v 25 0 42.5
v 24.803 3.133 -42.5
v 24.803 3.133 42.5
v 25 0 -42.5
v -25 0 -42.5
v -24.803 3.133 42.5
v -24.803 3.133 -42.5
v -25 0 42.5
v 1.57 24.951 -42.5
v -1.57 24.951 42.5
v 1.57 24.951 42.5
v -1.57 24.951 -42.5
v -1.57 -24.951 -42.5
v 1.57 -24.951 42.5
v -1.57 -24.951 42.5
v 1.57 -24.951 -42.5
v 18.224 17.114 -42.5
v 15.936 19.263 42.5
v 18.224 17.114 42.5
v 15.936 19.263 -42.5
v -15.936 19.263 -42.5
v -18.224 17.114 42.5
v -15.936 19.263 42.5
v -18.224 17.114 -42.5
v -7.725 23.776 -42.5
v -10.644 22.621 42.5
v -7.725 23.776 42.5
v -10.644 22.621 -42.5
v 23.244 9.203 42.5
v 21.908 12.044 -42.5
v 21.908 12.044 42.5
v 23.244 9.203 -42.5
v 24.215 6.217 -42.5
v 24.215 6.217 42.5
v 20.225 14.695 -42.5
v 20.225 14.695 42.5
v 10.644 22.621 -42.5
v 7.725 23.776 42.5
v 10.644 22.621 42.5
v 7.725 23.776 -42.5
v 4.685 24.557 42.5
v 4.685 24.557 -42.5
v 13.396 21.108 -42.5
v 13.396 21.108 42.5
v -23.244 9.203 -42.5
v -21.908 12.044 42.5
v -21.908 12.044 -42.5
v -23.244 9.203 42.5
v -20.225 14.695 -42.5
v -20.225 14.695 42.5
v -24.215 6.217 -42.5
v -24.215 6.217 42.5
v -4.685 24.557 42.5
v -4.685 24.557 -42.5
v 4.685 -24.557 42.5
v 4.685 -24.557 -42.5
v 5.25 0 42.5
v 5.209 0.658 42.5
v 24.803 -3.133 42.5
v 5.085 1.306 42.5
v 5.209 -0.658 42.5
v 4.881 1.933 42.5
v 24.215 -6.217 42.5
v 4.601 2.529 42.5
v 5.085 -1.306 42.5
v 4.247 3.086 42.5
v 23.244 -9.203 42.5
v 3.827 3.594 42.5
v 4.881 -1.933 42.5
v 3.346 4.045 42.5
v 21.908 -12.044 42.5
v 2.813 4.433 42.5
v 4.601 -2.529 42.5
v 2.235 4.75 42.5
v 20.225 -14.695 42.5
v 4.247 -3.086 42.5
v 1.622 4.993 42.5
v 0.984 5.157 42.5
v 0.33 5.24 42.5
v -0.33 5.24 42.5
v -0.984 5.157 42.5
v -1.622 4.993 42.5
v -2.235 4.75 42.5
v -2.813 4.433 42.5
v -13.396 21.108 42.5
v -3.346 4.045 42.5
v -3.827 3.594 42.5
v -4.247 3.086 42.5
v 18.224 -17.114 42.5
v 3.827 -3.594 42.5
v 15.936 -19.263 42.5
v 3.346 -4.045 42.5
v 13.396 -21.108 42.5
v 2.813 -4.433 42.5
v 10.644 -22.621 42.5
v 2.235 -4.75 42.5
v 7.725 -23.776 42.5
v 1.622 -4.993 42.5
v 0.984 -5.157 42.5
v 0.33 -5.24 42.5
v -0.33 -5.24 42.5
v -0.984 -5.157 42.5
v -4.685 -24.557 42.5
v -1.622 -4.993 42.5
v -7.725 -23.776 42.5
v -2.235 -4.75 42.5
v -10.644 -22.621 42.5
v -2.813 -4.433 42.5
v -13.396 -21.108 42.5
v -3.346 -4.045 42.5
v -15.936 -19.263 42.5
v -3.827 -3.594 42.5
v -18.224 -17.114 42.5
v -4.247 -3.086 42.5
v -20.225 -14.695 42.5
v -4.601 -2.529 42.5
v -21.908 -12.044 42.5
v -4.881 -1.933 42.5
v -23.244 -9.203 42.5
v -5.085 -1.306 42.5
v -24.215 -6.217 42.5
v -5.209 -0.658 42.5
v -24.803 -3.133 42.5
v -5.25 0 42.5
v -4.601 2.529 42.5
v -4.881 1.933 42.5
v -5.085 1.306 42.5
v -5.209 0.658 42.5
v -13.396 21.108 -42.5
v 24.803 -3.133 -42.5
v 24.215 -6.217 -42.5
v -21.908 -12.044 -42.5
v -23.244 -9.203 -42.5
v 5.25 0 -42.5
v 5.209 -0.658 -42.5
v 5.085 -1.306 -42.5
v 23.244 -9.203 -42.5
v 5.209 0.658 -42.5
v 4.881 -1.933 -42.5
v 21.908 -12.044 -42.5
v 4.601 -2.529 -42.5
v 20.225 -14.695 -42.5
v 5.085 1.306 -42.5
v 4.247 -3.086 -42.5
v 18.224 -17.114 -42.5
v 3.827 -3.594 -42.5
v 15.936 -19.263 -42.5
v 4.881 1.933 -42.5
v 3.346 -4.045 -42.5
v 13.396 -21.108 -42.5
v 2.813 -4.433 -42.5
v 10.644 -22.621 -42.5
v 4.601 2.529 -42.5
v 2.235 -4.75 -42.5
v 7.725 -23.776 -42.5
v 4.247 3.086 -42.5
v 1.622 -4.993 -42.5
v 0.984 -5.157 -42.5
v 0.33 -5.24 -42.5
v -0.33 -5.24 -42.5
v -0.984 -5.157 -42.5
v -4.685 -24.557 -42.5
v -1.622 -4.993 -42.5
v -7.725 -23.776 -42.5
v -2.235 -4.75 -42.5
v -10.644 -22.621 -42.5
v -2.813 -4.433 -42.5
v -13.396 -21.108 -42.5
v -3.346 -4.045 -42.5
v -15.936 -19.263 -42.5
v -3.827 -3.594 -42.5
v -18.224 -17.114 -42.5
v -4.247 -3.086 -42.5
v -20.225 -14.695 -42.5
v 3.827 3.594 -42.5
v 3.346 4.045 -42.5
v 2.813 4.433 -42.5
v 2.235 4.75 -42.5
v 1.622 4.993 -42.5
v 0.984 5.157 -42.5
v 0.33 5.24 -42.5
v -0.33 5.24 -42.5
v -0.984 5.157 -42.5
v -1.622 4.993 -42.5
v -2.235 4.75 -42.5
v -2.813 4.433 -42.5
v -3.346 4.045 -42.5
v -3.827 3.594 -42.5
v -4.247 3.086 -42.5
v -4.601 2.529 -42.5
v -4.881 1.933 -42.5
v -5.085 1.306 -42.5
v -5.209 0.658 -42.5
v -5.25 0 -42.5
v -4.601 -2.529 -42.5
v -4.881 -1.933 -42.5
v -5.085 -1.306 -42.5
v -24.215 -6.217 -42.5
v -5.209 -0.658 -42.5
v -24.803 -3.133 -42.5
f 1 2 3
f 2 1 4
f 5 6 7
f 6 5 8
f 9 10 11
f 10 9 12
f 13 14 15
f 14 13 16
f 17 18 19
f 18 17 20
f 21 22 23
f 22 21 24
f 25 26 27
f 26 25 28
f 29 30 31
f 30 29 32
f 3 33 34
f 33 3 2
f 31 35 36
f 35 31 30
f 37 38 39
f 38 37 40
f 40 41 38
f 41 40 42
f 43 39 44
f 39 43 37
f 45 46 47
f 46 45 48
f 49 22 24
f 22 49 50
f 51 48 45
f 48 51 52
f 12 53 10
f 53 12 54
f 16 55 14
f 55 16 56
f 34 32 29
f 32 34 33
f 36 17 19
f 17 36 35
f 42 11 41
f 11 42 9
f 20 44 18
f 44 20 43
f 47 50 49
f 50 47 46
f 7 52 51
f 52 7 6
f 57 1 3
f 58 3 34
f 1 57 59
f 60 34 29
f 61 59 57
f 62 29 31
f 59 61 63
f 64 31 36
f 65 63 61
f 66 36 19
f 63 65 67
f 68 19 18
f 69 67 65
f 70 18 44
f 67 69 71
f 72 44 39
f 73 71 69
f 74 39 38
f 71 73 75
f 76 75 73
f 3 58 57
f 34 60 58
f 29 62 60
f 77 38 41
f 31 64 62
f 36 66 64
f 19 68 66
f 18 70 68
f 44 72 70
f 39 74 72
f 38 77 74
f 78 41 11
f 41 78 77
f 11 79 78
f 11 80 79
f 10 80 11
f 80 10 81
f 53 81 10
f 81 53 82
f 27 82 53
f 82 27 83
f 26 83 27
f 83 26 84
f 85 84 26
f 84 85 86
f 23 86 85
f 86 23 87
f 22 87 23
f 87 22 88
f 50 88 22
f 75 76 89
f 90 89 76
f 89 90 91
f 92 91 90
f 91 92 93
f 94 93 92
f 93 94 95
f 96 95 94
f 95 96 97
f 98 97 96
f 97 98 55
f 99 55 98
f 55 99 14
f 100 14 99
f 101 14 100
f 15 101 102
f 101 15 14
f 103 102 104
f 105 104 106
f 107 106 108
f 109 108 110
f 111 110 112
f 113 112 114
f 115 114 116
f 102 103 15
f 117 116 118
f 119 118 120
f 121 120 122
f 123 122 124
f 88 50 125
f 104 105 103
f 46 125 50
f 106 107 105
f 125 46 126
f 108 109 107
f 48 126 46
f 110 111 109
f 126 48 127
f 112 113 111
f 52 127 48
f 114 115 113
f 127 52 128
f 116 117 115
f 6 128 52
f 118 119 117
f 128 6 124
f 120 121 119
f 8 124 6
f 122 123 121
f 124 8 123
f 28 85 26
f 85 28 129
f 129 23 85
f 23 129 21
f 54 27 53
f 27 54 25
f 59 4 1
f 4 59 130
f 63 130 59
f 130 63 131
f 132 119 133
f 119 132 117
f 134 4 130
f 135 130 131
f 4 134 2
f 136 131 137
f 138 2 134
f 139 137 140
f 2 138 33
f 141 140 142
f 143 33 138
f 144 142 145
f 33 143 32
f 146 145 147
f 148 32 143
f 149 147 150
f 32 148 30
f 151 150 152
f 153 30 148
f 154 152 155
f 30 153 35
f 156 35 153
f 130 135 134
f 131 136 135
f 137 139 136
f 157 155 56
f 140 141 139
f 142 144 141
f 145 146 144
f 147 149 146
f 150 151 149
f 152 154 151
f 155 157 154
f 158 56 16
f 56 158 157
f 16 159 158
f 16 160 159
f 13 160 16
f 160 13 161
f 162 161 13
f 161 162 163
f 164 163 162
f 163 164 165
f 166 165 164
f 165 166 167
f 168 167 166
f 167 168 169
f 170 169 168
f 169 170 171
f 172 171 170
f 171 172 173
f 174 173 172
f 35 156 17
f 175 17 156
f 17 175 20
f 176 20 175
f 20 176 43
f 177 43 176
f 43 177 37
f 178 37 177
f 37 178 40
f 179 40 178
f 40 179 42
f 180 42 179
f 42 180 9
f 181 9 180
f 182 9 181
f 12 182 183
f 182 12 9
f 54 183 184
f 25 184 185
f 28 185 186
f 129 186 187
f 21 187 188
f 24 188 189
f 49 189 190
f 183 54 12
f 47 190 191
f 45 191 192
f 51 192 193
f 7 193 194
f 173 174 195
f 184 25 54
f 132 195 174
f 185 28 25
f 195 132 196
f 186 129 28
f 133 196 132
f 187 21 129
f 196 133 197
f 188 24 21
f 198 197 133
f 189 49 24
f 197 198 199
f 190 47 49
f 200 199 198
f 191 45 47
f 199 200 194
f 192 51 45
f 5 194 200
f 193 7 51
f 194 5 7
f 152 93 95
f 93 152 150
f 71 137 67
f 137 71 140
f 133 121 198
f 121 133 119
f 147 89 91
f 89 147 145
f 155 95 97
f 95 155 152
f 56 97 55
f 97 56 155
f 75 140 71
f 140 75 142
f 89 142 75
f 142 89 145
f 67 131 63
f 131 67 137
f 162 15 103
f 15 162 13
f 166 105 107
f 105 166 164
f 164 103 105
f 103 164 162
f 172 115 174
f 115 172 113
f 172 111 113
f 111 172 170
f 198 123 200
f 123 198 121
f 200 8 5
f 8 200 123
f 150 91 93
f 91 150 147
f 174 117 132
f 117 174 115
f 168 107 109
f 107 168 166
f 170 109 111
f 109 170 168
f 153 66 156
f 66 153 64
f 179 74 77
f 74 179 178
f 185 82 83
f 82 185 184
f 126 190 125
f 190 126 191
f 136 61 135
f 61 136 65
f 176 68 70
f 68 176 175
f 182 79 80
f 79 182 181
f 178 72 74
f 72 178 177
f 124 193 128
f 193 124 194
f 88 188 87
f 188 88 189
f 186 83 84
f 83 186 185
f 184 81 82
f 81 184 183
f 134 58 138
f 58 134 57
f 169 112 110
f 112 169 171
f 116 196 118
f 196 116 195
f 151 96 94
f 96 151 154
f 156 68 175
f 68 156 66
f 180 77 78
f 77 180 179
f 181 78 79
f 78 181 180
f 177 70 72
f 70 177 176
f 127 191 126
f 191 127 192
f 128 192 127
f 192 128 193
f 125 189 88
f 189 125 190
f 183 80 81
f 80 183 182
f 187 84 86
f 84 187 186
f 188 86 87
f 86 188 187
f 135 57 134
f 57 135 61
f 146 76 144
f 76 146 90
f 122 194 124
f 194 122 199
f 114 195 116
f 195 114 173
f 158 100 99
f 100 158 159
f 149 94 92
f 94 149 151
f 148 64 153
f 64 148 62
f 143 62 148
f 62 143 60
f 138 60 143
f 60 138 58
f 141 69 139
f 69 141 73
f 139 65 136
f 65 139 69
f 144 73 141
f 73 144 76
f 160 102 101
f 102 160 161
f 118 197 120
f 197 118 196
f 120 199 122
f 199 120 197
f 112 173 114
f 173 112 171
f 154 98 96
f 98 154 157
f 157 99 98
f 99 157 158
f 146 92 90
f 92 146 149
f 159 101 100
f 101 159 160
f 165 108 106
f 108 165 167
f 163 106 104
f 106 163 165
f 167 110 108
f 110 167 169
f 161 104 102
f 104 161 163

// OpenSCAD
$fn = 50;


difference() {
	union() {
		translate(v = [0, 0, -42.5000000000]) {
			cylinder(h = 85, r = 25.0000000000);
		}
	}
	union() {
		translate(v = [0, 0, -100.0000000000]) {
			cylinder(h = 200, r = 5.2500000000);
		}
	}
}
